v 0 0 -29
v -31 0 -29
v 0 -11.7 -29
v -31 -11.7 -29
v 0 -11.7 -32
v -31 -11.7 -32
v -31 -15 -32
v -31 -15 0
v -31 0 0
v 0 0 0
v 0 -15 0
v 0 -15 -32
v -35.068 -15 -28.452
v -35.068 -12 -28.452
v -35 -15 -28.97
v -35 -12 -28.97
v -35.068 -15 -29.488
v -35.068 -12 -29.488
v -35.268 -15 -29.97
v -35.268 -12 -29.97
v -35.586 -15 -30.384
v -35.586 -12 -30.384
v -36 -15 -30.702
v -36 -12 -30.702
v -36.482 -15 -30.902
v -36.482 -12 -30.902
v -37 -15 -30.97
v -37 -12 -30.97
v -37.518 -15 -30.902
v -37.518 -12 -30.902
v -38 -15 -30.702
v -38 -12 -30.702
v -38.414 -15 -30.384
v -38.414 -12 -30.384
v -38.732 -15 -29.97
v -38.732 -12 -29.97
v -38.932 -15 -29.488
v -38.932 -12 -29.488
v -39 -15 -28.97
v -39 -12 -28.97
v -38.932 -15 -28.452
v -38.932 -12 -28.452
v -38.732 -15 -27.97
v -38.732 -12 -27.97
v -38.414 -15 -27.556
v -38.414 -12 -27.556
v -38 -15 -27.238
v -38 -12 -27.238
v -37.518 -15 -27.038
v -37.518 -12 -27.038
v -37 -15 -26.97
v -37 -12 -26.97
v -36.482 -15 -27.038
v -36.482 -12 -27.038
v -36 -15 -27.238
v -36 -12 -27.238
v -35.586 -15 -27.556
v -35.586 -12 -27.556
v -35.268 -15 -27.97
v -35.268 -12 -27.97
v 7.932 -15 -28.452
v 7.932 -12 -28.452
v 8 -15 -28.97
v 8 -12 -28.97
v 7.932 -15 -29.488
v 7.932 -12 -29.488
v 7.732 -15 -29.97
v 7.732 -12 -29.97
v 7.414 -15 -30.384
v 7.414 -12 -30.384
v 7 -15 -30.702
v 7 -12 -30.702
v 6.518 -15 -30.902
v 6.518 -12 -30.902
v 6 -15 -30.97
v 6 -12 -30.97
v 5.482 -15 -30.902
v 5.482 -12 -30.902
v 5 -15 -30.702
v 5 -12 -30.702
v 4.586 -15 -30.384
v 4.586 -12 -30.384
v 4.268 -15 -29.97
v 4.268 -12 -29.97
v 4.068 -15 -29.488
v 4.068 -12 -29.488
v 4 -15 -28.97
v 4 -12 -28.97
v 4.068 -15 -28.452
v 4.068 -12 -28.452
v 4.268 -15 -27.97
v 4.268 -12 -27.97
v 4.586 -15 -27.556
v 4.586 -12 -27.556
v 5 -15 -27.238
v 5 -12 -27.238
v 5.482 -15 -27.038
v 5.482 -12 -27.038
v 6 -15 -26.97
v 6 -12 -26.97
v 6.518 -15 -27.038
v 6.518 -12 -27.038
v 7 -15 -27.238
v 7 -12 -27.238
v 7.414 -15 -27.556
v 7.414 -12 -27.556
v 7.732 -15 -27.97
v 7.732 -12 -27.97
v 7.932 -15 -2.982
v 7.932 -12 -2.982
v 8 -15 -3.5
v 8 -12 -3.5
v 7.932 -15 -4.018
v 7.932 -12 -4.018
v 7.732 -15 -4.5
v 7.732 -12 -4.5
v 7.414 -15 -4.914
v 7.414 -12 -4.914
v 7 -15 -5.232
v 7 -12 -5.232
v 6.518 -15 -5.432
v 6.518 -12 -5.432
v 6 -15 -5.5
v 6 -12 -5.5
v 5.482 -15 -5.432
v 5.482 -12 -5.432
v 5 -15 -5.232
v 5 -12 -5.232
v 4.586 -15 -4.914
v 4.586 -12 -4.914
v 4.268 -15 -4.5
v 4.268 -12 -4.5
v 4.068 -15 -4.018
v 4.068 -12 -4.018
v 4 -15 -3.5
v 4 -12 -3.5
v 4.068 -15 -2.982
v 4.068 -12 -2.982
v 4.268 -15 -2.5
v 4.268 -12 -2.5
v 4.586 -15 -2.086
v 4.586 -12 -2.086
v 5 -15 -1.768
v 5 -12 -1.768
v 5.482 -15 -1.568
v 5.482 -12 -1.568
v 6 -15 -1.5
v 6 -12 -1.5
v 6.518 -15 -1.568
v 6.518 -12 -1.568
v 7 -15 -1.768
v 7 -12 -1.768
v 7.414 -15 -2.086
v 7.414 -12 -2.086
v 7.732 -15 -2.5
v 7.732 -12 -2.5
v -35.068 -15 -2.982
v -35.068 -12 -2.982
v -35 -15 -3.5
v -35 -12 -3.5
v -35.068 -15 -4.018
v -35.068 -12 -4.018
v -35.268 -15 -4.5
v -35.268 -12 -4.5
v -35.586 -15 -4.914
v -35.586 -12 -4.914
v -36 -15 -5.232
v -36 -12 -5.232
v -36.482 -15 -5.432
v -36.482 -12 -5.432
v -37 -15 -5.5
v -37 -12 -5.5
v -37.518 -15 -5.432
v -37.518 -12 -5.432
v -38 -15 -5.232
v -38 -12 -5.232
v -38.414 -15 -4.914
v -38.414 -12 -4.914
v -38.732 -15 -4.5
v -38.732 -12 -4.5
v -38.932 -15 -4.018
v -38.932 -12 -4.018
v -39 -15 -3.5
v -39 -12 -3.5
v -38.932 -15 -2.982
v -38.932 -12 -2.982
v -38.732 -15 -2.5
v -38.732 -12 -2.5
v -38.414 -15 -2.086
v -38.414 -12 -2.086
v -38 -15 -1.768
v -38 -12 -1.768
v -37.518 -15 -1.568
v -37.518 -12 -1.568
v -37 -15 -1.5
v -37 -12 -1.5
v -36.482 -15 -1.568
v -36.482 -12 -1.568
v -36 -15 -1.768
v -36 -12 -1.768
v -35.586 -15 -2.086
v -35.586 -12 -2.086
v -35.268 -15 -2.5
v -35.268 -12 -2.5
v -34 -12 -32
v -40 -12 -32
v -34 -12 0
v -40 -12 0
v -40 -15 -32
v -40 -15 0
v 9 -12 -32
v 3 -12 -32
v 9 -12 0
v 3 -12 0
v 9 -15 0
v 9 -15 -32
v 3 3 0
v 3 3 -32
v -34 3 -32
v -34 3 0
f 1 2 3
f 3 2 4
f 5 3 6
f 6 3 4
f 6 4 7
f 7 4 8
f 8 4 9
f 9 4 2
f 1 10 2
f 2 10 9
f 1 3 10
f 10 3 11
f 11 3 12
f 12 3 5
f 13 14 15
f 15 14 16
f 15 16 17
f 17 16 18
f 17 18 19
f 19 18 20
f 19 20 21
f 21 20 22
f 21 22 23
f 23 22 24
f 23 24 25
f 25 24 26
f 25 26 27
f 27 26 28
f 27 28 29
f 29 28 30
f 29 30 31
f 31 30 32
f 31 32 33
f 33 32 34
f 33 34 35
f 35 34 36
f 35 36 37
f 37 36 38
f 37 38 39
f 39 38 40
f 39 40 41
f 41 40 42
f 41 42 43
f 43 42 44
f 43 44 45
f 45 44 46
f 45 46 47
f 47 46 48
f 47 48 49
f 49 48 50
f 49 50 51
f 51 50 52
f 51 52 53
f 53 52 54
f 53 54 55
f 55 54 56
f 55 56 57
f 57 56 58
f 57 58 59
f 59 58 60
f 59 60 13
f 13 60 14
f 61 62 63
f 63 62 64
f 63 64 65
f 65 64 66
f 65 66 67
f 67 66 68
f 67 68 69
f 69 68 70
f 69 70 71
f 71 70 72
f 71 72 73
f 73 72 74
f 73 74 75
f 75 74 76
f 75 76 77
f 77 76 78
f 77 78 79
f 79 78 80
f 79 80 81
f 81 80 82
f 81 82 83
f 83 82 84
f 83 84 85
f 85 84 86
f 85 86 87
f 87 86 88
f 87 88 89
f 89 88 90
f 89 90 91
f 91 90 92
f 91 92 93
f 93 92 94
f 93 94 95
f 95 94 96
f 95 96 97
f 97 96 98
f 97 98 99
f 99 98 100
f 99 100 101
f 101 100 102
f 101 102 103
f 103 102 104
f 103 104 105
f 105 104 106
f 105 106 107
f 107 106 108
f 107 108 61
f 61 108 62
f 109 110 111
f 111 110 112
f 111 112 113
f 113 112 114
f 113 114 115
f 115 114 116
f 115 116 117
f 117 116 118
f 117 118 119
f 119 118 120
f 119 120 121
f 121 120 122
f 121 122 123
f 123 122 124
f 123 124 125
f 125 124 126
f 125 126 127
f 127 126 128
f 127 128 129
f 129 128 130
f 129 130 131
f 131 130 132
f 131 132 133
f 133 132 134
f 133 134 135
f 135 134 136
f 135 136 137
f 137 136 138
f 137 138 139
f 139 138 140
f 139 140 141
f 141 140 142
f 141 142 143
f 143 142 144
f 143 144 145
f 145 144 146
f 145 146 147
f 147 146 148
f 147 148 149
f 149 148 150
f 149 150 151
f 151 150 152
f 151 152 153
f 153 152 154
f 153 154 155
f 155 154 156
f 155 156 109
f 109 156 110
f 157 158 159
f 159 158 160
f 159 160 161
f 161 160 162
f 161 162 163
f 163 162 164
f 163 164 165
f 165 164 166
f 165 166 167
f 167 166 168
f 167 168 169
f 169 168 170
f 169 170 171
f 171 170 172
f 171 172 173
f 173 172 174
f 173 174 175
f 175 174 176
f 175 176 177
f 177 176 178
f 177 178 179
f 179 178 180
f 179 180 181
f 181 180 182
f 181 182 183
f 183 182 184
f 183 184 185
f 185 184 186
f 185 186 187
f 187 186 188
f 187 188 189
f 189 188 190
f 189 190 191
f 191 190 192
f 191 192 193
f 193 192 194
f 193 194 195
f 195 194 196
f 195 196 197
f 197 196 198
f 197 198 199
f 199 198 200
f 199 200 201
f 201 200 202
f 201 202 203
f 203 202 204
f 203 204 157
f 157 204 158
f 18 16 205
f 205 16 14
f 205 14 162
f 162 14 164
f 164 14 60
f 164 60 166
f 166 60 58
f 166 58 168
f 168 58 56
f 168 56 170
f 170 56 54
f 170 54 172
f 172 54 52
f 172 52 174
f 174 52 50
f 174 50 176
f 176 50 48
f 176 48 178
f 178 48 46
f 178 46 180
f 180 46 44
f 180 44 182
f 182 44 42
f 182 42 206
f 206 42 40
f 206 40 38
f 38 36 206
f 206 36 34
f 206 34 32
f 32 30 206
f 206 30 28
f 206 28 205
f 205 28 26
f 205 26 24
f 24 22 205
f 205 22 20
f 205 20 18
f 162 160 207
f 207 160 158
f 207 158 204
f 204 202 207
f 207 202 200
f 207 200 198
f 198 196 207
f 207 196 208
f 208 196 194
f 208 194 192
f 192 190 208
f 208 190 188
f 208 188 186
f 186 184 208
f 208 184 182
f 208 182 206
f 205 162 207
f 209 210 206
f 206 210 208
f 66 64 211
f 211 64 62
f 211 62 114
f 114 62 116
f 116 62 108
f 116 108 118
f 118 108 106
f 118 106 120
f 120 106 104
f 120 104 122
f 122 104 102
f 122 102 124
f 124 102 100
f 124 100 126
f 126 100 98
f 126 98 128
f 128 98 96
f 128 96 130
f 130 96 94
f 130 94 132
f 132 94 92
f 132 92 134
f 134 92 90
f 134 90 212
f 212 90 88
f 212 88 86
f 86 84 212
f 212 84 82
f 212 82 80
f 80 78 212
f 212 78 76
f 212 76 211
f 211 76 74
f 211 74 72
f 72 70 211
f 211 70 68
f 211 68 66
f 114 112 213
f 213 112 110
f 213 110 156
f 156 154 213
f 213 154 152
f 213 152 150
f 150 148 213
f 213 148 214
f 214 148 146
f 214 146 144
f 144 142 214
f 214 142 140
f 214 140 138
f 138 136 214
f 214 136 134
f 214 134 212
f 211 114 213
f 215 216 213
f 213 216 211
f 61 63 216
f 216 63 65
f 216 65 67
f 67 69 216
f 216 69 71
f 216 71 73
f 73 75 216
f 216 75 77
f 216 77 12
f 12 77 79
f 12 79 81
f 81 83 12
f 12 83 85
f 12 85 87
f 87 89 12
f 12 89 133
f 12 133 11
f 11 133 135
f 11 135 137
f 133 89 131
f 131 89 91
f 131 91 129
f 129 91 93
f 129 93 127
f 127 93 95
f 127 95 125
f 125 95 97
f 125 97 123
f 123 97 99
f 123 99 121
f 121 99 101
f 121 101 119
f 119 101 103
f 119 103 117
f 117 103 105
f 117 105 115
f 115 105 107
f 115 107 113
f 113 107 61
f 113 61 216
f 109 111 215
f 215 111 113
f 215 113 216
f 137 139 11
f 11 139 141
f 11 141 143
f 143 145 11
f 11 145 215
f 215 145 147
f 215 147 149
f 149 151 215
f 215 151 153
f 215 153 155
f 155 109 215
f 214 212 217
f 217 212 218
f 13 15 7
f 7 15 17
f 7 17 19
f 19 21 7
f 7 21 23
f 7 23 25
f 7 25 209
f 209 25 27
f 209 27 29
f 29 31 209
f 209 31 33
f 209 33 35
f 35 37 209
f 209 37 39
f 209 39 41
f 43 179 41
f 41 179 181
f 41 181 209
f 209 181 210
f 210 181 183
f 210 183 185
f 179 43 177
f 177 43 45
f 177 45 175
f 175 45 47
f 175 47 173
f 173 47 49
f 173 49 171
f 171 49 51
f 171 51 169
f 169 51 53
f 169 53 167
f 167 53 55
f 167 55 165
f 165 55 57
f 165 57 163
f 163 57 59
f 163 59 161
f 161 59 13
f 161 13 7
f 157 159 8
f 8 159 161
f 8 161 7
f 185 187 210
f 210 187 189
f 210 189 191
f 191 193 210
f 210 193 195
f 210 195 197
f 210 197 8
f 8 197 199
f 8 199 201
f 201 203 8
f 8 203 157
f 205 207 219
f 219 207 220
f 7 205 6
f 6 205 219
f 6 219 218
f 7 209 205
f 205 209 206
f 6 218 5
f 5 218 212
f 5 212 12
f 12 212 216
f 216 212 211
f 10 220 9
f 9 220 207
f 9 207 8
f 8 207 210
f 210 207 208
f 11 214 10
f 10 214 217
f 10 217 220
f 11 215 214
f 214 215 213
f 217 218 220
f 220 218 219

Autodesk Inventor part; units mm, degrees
ref_plane "YZ Plane" through (0, 0, 0) normal (1, 0, 0) x (0, 1, 0)
ref_plane "XZ Plane" through (0, 0, 0) normal (0, 1, 0) x (-1, 0, 0)
ref_plane "XY Plane" through (0, 0, 0) normal (0, 0, 1) x (1, 0, 0)
sketch "Sketch1" plane through (0, 0, 0) normal (0, 1, 0) x (-1, 0, 0)
  line L0 (0, 0) -> (31, 0)
  line L1 (31, 0) -> (31, -32)
  line L2 (31, -32) -> (0, -32)
  line L3 (0, -32) -> (0, 0)
  dimension "d0" = 31
  dimension "d1" = 32
extrude "Extrusion1" add sketch "Sketch1" along normal blind 3
sketch "Sketch2" plane through (-31, 0, -32) normal (-1, 0, 0) x (0, 0, 1)
  line L0 (32, 3) -> (0, 3)
  line L1 (0, 3) -> (0, -15)
  line L2 (0, -15) -> (32, -15)
  line L3 (32, -15) -> (32, 3)
  point P0 (32, 0)
  dimension "d4" = 32
  dimension "d5" = 18
extrude "Extrusion2" add sketch "Sketch2" along normal blind 3
sketch "Sketch3" plane through (0, 0, 0) normal (1, 0, 0) x (0, 0, -1)
  line L0 (0, 3) -> (32, 3)
  line L1 (32, 3) -> (32, -15)
  line L2 (32, -15) -> (0, -15)
  line L3 (0, -15) -> (0, 3)
  point P0 (0, 0)
  dimension "d8" = 32
  dimension "d9" = 18
extrude "Extrusion3" add sketch "Sketch3" along normal blind 3
sketch "Sketch4" plane through (3, 0, 0) normal (1, 0, 0) x (0, 0, -1)
  line L0 (0, 3) -> (0, -15) projected
  line L1 (0, -15) -> (32, -15)
  line L2 (32, -15) -> (32, -12)
  line L3 (32, -12) -> (0, -12)
  line L4 (0, -12) -> (0, -15)
  point P0 (0, 0)
  dimension "d12" = 32
  dimension "d13" = 3
extrude "Extrusion4" add sketch "Sketch4" along normal blind 6
sketch "Sketch5" plane through (-34, 0, -32) normal (-1, 0, 0) x (0, 0, 1)
  line L0 (0, -15) -> (32, -15) projected
  line L1 (0, -15) -> (32, -15)
  line L2 (32, -15) -> (32, -12)
  line L3 (32, -12) -> (0, -12)
  line L4 (0, -12) -> (0, -15)
  point P0 (32, 0)
  dimension "d16" = 32
  dimension "d17" = 3
extrude "Extrusion5" add sketch "Sketch5" along normal blind 6
sketch "Sketch6" plane through (-34, -12, 0) normal (0, 1, 0) x (1, 0, 0)
  circle A0 centre (40, 28.97) radius 2
  circle A1 centre (40, 3.5) radius 2
  circle A2 centre (-3, 28.97) radius 2
  circle A3 centre (-3, 3.5) radius 2
  line L0 (37, 0) -> (43, 0) projected
  line L1 (0, 0) -> (-6, 0) projected
  line L2 (43, 32) -> (43, 0) projected
  line L3 (-6, 0) -> (-6, 32) projected
  point P0 (34, 0)
  dimension "d20" = 4
  dimension "d21" = 4
  dimension "d22" = 4
  dimension "d23" = 4
  dimension "d24" = 25.47
  dimension "d25" = 25.47
  dimension "d26" = 3.5
  dimension "d27" = 3.5
  dimension "d28" = 3
  dimension "d29" = 3
  dimension "d30" = 3
extrude "Extrusion6" cut sketch "Sketch6" against normal blind 6
sketch "Sketch7" plane through (0, 0, 0) normal (0, -1, 0) x (1, 0, 0)
  line L0 (0, -32) -> (9, -32) projected
  line L1 (-31, -32) -> (-31, 0) projected
  line L2 (0, -32) -> (-31, -32)
  line L3 (-31, -32) -> (-31, -29)
  line L4 (-31, -29) -> (0, -29)
  line L5 (0, -29) -> (0, -32)
  point P0 (0, 0)
  dimension "d33" = 3
extrude "Extrusion7" add sketch "Sketch7" along normal blind 11.7
properties part number "AprieteEthernet"
